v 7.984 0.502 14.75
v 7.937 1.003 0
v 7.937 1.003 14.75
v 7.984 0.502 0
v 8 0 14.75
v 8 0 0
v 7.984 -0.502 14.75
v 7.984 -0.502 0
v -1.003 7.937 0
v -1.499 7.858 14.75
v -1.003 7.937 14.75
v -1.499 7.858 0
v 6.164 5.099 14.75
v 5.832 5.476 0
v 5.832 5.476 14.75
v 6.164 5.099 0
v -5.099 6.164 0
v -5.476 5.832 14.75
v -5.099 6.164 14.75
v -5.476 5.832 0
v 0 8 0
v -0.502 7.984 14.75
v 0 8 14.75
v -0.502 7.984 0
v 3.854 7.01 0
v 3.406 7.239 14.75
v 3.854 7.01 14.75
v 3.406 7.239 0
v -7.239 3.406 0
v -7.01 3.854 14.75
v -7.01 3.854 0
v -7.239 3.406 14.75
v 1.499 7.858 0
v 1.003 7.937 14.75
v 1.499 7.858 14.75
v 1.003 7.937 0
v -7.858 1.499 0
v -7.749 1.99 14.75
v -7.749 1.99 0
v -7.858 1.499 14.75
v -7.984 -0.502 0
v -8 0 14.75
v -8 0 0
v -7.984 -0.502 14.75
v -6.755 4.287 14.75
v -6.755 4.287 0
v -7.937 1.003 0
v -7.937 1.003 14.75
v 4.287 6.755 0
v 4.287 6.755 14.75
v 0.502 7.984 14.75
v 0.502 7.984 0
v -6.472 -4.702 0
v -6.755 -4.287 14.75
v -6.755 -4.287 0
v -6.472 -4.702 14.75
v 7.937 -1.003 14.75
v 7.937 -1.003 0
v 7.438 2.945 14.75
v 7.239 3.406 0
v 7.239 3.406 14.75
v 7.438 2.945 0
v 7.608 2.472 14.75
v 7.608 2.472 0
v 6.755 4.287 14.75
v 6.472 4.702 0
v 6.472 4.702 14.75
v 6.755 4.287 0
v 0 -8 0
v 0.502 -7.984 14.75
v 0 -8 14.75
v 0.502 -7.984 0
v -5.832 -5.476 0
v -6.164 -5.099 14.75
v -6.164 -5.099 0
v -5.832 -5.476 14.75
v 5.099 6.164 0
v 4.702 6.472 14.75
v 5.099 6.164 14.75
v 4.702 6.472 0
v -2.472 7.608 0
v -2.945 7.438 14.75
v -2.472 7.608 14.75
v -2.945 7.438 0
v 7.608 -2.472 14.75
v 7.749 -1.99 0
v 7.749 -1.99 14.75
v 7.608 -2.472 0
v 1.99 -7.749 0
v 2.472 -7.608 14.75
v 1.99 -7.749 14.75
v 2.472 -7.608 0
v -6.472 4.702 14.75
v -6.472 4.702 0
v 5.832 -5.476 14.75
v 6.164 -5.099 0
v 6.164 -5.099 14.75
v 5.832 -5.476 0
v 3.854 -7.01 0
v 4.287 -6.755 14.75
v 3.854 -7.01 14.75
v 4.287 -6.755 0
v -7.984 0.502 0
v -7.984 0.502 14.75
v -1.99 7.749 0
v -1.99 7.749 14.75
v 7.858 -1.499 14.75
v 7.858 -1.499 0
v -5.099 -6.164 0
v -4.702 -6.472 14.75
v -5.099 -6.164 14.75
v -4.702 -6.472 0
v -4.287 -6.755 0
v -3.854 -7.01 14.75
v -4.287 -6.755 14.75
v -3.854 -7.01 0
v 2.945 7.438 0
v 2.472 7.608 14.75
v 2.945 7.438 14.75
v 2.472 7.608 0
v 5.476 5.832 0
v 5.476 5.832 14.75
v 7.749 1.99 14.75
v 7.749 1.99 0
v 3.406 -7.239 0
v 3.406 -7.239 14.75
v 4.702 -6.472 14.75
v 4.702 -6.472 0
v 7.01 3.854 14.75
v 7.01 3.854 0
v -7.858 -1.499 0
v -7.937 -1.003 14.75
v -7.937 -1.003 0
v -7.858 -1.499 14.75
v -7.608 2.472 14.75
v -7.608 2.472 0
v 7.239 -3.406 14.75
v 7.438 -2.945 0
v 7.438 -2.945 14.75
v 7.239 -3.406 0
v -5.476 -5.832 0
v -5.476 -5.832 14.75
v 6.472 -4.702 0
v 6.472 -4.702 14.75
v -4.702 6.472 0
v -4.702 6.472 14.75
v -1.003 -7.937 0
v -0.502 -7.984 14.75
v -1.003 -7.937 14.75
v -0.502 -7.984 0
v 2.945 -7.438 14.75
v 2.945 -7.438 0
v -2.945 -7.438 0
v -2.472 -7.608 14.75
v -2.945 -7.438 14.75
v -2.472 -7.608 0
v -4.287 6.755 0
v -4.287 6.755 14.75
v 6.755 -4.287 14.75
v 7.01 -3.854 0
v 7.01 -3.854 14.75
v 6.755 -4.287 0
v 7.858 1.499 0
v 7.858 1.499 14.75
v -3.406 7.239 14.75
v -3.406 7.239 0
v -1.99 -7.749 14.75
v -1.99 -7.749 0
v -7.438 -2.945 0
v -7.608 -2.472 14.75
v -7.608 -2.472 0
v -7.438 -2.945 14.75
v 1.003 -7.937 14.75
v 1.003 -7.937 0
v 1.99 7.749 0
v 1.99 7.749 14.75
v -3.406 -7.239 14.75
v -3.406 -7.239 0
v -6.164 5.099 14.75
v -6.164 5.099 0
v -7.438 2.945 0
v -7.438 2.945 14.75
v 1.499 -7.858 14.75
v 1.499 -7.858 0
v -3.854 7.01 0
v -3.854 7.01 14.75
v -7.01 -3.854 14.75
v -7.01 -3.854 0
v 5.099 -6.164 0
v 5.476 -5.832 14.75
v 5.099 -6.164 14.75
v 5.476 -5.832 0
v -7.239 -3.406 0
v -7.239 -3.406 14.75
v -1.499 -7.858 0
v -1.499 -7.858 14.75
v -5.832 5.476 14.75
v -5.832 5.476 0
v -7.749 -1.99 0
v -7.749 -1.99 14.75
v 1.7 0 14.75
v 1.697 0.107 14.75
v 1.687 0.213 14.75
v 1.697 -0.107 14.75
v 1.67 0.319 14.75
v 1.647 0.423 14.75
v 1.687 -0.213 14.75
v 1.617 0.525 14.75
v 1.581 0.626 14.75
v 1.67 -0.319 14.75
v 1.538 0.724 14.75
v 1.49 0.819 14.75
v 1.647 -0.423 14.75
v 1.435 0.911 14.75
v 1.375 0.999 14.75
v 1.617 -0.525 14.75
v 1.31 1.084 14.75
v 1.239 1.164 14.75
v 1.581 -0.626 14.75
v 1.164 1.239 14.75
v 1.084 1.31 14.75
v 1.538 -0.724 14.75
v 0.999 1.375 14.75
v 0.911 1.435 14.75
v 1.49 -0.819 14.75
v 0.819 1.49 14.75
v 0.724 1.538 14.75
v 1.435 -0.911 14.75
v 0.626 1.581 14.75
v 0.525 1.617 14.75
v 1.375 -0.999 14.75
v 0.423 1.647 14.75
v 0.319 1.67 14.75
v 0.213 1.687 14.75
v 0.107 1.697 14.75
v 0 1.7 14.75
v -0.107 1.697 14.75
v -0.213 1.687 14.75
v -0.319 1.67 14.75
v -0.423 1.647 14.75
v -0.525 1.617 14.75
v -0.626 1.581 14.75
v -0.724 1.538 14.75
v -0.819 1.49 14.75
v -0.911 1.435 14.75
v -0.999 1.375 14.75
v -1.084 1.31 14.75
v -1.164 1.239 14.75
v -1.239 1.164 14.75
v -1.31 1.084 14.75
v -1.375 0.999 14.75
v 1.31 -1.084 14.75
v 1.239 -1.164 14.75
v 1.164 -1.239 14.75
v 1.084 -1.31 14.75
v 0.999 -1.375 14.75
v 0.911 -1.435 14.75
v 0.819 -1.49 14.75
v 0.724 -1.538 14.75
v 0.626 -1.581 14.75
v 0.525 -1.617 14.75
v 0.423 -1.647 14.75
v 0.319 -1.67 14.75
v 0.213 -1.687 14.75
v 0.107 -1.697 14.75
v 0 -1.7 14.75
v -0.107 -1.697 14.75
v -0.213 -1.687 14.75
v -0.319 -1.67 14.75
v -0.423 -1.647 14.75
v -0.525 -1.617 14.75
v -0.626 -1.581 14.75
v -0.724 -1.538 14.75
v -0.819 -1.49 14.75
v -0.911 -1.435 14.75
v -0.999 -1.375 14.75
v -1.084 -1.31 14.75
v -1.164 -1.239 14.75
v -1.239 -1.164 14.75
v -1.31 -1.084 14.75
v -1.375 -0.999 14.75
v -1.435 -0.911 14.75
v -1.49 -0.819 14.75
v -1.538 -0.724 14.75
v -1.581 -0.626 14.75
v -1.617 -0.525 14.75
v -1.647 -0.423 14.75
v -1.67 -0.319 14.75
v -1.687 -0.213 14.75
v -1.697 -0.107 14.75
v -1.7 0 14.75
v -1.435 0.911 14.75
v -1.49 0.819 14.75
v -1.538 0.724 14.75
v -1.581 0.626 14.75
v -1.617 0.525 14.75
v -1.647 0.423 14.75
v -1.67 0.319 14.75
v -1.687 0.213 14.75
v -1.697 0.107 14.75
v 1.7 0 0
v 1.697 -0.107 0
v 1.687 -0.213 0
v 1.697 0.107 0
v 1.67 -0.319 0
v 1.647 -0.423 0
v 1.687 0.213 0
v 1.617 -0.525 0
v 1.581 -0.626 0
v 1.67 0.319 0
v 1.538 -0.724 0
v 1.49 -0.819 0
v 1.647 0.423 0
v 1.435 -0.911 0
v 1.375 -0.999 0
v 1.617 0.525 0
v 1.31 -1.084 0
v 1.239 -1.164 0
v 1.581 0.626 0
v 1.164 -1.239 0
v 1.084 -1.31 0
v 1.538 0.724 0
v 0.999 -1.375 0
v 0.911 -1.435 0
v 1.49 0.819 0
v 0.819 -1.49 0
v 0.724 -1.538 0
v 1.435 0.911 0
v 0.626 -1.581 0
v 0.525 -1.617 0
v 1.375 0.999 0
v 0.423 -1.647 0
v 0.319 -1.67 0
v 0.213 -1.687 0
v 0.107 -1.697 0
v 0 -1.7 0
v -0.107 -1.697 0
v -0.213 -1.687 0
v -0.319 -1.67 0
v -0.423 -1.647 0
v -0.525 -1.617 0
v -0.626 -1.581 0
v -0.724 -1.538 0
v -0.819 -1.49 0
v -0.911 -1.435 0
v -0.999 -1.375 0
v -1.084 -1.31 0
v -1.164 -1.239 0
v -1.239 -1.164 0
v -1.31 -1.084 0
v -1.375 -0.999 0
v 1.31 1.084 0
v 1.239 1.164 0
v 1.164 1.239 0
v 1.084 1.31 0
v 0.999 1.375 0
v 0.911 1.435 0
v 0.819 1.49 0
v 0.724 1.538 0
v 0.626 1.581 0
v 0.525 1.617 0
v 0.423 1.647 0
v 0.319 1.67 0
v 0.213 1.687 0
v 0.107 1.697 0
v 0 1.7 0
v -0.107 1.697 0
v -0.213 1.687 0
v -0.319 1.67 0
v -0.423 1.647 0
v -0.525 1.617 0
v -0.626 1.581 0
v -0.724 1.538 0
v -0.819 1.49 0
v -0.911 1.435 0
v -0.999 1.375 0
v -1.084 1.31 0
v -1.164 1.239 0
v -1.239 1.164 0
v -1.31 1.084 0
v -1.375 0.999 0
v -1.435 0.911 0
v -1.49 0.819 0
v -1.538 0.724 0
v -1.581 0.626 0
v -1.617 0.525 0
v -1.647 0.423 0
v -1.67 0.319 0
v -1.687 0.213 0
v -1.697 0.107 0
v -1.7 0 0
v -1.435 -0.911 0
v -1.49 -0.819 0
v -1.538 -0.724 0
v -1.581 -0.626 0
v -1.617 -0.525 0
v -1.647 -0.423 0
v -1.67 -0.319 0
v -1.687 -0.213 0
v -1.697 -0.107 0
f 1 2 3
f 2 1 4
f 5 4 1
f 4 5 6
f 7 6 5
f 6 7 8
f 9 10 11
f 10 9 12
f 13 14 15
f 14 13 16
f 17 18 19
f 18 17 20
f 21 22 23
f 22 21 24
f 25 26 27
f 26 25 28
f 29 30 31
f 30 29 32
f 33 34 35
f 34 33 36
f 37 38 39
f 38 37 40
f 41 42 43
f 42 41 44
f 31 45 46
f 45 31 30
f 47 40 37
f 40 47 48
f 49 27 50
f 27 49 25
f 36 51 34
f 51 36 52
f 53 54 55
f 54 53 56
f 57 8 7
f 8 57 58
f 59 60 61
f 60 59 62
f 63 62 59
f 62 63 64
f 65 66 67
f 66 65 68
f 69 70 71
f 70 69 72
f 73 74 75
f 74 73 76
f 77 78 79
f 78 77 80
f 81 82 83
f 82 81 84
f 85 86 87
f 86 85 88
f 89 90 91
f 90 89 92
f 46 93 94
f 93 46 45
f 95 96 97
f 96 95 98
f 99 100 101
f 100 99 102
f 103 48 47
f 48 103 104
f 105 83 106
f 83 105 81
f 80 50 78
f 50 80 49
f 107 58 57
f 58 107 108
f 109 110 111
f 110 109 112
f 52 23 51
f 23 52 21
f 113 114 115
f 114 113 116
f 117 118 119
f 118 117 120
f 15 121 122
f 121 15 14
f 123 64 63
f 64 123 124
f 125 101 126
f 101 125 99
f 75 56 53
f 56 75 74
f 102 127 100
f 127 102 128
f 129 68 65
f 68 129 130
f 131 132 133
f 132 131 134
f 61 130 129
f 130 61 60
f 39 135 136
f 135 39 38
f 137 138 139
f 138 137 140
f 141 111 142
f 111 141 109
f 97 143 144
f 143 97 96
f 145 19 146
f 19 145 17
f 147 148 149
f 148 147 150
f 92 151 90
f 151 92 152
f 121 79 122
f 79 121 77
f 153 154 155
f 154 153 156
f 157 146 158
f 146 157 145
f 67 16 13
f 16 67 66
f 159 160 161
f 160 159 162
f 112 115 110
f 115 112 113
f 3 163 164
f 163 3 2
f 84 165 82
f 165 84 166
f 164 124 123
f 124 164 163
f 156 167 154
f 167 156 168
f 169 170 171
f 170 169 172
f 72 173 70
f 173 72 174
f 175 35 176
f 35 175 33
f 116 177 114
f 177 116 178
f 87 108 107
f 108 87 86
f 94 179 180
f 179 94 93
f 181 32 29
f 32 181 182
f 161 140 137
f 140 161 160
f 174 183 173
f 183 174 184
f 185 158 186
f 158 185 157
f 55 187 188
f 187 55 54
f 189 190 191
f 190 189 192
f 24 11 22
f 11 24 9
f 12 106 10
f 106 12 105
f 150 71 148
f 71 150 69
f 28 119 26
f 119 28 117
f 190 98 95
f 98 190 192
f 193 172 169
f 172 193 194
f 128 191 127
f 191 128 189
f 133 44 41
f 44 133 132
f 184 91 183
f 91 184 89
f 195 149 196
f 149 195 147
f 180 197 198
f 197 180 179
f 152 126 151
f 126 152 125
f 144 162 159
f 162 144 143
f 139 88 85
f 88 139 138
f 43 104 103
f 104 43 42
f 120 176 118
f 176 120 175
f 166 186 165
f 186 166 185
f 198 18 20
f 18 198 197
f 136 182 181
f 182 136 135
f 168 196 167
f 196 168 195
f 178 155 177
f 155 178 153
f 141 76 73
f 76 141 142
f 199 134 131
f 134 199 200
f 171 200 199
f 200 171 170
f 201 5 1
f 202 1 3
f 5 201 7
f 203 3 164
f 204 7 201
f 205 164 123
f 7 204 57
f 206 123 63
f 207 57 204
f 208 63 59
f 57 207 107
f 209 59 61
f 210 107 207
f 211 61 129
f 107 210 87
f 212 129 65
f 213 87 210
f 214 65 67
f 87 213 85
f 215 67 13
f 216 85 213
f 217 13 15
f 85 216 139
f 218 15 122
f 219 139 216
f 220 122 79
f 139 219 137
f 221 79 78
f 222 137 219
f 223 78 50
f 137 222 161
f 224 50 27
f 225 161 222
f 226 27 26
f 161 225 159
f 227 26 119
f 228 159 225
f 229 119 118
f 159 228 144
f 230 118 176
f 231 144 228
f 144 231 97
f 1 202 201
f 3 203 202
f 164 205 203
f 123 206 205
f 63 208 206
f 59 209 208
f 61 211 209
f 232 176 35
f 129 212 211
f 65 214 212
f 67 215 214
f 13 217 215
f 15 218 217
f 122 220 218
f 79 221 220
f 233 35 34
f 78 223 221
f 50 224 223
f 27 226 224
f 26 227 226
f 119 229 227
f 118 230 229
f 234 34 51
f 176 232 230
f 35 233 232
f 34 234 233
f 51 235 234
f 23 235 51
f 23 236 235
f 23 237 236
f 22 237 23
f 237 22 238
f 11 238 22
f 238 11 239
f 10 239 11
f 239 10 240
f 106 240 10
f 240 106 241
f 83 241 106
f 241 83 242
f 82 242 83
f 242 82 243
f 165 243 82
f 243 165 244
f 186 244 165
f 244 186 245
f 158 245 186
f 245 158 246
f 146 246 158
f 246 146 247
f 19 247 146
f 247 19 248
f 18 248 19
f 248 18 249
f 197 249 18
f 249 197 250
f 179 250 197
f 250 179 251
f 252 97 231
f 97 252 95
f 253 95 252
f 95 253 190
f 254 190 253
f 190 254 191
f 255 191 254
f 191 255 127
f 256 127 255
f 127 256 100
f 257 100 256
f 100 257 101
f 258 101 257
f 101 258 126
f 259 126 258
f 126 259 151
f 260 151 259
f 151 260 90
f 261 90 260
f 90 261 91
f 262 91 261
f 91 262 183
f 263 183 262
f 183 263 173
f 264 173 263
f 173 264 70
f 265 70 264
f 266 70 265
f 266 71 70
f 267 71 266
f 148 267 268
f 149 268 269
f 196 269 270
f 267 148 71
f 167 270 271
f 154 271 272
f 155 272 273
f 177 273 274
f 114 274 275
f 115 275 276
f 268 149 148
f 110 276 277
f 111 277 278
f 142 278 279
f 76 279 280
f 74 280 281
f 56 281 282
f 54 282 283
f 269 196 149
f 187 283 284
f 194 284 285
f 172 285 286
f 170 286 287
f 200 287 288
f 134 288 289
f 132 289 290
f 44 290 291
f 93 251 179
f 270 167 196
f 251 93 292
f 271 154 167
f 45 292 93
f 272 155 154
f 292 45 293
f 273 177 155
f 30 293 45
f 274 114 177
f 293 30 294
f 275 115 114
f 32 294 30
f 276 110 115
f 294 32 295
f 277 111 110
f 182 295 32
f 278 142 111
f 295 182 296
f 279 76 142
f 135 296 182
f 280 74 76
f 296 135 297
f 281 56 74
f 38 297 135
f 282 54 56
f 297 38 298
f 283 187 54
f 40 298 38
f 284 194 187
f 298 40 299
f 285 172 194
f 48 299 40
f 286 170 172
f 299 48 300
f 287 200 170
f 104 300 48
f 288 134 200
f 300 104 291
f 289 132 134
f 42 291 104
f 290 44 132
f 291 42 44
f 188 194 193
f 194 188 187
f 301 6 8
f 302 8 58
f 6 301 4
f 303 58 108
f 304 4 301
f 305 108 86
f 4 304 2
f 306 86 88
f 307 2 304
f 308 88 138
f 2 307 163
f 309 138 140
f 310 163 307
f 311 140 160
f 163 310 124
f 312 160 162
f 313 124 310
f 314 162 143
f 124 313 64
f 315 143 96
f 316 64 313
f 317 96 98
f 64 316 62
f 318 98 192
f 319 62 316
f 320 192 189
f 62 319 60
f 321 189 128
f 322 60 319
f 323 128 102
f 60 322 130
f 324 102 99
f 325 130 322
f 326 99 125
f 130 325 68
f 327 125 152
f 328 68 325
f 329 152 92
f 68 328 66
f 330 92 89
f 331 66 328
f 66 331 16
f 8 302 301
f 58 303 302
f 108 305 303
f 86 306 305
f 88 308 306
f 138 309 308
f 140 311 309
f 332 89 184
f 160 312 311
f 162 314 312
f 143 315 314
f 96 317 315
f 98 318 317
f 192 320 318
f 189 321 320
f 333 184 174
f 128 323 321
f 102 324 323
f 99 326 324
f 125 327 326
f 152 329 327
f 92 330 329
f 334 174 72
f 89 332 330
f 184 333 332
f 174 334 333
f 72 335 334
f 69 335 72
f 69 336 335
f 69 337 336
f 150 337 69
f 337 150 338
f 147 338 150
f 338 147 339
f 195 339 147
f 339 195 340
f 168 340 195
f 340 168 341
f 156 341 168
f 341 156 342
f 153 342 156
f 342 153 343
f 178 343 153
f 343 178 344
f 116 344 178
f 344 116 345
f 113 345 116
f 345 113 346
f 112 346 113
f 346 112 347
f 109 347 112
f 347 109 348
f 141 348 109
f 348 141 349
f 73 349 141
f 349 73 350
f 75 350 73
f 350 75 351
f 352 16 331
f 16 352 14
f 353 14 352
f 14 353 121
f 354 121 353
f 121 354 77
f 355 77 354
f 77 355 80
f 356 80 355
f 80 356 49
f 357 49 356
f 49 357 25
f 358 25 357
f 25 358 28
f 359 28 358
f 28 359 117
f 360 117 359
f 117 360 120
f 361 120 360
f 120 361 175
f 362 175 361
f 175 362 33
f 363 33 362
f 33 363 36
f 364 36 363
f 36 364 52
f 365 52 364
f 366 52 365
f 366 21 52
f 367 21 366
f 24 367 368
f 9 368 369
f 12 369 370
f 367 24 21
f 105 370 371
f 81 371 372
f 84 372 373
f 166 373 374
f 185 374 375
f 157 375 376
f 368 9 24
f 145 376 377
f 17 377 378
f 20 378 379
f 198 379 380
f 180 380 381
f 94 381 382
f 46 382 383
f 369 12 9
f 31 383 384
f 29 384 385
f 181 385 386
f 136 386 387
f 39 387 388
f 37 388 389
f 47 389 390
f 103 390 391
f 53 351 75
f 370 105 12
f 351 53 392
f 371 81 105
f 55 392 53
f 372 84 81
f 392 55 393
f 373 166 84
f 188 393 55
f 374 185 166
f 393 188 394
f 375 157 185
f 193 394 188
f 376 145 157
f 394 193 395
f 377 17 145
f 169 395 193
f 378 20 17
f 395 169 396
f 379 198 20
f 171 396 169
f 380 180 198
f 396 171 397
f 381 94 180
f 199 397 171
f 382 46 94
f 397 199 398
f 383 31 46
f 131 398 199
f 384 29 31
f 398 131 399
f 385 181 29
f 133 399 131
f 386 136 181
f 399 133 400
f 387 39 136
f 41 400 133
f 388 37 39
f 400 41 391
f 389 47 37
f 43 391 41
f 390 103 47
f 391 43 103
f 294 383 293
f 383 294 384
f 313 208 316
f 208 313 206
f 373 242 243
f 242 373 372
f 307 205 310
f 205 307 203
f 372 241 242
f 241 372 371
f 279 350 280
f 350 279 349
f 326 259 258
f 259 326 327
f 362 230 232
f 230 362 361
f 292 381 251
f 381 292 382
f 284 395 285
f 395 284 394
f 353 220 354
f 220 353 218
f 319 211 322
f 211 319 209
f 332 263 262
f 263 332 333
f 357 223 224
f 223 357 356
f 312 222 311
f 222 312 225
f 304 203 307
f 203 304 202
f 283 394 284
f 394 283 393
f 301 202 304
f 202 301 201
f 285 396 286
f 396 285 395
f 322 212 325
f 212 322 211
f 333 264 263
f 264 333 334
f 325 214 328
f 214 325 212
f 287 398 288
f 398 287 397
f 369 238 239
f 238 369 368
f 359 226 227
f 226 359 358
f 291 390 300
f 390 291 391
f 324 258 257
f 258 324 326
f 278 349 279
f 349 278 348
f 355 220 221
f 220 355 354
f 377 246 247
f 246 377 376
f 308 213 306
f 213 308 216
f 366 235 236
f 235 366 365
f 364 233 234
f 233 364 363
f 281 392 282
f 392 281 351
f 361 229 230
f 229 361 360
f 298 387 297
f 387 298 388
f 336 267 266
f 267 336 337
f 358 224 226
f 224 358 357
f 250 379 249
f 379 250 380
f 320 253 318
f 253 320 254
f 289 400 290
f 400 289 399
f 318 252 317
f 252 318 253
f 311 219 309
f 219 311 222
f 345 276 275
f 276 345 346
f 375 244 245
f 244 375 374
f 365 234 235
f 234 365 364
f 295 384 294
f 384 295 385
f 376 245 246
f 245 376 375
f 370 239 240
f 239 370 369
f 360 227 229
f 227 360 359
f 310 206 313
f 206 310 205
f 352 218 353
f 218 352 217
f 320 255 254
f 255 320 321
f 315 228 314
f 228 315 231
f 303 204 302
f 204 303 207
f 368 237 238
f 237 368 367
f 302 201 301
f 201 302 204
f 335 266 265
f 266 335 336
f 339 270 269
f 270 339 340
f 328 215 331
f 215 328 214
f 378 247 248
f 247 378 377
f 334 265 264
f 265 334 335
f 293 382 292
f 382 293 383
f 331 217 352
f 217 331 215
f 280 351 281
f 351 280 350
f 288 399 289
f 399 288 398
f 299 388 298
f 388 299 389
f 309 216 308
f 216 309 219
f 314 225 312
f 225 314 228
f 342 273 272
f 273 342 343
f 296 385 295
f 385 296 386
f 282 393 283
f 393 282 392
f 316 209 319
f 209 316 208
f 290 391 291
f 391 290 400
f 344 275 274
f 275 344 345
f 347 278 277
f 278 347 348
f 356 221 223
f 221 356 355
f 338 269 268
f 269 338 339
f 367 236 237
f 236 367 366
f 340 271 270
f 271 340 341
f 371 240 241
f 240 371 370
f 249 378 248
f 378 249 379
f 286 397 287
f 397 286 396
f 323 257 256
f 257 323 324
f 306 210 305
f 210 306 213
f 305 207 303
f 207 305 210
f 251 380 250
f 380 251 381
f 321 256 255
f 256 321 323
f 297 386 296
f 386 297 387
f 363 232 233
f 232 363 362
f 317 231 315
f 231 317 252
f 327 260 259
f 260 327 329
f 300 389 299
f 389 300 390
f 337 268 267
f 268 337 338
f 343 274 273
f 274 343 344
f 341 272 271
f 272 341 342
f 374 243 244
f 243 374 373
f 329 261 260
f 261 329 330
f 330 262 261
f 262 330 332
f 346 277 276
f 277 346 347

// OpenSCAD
/* Battery adapter for CR123A in SK-68 flashlight.
 * For flashlight that can accept CR123A width, but is
 * sized for a AA battery.
 */
$fn=100;

cr123a_dia=16;
cr123a_len=34.5;
aa_dia=14.5;
aa_len=50;
screw_head_height=0.75;
screw_dia=2.9;

inner_dia=screw_dia+0.5;
outer_dia=cr123a_dia;
length=(aa_len-cr123a_len)-screw_head_height;

/* Model of a screw in the core to use as a conductor */
module screw() {
    cylinder(h=screw_head_height + length, d=screw_dia);
}

/* Basic adapter with hole in the center for a screw
 * conductor */
module adapter_with_screw_conductor() {
    difference() {
        cylinder(h=length, d=outer_dia);
        cylinder(h=length, d=inner_dia);
    }
}

/* A cylinder that is wide in the center, but narrow at top
 * and bottom, to easily pass wire without need for (much)
 * drilling */
module cone_cyl(h,d) {
    cylinder(d1=d,d2=2*d,h=h/2);
    translate([0,0,h/2]) cylinder(d1=2*d,d2=d,h=h/2);
}

/* Adapter with several holes to pass wire through from top
 * to bottom, instead of using a screw or other cylindrical
 * conductor */
module adapter_with_holes_for_wire() {
    difference() {
        cylinder(h=length, d=outer_dia);
        translate([3,0,0]) cone_cyl(h=length, d=2);
        translate([-3,0,0]) cone_cyl(h=length, d=2);
        translate([0,3,0]) cone_cyl(h=length, d=2);
        translate([0,-3,0]) cone_cyl(h=length, d=2);
    }
    // Add a "bump" on the top of the adapter
    //translate([0,0,length-1]) sphere(d=4);
}

/* Adapter with notches in the sides so that bare wire can
 * be wrapped around several times, in an easier way than
 * routing wire through holes. */
module adapter_with_notches_for_wire() {
    difference() {
        cylinder(h=length, d=outer_dia);
        translate([3,-2,0]) cube([8,4,length]);
        translate([-11,-2,0]) cube([8,4,length]);
        //cylinder(h=1, d=outer_dia-1);
    }
    // Add a "bump" on the top of the adapter
    translate([-2,-3,length]) cube([4, 6, 1]);
}

/* Render the desired adapter */
adapter_with_screw_conductor();
//#screw(); // Visualize the screw
